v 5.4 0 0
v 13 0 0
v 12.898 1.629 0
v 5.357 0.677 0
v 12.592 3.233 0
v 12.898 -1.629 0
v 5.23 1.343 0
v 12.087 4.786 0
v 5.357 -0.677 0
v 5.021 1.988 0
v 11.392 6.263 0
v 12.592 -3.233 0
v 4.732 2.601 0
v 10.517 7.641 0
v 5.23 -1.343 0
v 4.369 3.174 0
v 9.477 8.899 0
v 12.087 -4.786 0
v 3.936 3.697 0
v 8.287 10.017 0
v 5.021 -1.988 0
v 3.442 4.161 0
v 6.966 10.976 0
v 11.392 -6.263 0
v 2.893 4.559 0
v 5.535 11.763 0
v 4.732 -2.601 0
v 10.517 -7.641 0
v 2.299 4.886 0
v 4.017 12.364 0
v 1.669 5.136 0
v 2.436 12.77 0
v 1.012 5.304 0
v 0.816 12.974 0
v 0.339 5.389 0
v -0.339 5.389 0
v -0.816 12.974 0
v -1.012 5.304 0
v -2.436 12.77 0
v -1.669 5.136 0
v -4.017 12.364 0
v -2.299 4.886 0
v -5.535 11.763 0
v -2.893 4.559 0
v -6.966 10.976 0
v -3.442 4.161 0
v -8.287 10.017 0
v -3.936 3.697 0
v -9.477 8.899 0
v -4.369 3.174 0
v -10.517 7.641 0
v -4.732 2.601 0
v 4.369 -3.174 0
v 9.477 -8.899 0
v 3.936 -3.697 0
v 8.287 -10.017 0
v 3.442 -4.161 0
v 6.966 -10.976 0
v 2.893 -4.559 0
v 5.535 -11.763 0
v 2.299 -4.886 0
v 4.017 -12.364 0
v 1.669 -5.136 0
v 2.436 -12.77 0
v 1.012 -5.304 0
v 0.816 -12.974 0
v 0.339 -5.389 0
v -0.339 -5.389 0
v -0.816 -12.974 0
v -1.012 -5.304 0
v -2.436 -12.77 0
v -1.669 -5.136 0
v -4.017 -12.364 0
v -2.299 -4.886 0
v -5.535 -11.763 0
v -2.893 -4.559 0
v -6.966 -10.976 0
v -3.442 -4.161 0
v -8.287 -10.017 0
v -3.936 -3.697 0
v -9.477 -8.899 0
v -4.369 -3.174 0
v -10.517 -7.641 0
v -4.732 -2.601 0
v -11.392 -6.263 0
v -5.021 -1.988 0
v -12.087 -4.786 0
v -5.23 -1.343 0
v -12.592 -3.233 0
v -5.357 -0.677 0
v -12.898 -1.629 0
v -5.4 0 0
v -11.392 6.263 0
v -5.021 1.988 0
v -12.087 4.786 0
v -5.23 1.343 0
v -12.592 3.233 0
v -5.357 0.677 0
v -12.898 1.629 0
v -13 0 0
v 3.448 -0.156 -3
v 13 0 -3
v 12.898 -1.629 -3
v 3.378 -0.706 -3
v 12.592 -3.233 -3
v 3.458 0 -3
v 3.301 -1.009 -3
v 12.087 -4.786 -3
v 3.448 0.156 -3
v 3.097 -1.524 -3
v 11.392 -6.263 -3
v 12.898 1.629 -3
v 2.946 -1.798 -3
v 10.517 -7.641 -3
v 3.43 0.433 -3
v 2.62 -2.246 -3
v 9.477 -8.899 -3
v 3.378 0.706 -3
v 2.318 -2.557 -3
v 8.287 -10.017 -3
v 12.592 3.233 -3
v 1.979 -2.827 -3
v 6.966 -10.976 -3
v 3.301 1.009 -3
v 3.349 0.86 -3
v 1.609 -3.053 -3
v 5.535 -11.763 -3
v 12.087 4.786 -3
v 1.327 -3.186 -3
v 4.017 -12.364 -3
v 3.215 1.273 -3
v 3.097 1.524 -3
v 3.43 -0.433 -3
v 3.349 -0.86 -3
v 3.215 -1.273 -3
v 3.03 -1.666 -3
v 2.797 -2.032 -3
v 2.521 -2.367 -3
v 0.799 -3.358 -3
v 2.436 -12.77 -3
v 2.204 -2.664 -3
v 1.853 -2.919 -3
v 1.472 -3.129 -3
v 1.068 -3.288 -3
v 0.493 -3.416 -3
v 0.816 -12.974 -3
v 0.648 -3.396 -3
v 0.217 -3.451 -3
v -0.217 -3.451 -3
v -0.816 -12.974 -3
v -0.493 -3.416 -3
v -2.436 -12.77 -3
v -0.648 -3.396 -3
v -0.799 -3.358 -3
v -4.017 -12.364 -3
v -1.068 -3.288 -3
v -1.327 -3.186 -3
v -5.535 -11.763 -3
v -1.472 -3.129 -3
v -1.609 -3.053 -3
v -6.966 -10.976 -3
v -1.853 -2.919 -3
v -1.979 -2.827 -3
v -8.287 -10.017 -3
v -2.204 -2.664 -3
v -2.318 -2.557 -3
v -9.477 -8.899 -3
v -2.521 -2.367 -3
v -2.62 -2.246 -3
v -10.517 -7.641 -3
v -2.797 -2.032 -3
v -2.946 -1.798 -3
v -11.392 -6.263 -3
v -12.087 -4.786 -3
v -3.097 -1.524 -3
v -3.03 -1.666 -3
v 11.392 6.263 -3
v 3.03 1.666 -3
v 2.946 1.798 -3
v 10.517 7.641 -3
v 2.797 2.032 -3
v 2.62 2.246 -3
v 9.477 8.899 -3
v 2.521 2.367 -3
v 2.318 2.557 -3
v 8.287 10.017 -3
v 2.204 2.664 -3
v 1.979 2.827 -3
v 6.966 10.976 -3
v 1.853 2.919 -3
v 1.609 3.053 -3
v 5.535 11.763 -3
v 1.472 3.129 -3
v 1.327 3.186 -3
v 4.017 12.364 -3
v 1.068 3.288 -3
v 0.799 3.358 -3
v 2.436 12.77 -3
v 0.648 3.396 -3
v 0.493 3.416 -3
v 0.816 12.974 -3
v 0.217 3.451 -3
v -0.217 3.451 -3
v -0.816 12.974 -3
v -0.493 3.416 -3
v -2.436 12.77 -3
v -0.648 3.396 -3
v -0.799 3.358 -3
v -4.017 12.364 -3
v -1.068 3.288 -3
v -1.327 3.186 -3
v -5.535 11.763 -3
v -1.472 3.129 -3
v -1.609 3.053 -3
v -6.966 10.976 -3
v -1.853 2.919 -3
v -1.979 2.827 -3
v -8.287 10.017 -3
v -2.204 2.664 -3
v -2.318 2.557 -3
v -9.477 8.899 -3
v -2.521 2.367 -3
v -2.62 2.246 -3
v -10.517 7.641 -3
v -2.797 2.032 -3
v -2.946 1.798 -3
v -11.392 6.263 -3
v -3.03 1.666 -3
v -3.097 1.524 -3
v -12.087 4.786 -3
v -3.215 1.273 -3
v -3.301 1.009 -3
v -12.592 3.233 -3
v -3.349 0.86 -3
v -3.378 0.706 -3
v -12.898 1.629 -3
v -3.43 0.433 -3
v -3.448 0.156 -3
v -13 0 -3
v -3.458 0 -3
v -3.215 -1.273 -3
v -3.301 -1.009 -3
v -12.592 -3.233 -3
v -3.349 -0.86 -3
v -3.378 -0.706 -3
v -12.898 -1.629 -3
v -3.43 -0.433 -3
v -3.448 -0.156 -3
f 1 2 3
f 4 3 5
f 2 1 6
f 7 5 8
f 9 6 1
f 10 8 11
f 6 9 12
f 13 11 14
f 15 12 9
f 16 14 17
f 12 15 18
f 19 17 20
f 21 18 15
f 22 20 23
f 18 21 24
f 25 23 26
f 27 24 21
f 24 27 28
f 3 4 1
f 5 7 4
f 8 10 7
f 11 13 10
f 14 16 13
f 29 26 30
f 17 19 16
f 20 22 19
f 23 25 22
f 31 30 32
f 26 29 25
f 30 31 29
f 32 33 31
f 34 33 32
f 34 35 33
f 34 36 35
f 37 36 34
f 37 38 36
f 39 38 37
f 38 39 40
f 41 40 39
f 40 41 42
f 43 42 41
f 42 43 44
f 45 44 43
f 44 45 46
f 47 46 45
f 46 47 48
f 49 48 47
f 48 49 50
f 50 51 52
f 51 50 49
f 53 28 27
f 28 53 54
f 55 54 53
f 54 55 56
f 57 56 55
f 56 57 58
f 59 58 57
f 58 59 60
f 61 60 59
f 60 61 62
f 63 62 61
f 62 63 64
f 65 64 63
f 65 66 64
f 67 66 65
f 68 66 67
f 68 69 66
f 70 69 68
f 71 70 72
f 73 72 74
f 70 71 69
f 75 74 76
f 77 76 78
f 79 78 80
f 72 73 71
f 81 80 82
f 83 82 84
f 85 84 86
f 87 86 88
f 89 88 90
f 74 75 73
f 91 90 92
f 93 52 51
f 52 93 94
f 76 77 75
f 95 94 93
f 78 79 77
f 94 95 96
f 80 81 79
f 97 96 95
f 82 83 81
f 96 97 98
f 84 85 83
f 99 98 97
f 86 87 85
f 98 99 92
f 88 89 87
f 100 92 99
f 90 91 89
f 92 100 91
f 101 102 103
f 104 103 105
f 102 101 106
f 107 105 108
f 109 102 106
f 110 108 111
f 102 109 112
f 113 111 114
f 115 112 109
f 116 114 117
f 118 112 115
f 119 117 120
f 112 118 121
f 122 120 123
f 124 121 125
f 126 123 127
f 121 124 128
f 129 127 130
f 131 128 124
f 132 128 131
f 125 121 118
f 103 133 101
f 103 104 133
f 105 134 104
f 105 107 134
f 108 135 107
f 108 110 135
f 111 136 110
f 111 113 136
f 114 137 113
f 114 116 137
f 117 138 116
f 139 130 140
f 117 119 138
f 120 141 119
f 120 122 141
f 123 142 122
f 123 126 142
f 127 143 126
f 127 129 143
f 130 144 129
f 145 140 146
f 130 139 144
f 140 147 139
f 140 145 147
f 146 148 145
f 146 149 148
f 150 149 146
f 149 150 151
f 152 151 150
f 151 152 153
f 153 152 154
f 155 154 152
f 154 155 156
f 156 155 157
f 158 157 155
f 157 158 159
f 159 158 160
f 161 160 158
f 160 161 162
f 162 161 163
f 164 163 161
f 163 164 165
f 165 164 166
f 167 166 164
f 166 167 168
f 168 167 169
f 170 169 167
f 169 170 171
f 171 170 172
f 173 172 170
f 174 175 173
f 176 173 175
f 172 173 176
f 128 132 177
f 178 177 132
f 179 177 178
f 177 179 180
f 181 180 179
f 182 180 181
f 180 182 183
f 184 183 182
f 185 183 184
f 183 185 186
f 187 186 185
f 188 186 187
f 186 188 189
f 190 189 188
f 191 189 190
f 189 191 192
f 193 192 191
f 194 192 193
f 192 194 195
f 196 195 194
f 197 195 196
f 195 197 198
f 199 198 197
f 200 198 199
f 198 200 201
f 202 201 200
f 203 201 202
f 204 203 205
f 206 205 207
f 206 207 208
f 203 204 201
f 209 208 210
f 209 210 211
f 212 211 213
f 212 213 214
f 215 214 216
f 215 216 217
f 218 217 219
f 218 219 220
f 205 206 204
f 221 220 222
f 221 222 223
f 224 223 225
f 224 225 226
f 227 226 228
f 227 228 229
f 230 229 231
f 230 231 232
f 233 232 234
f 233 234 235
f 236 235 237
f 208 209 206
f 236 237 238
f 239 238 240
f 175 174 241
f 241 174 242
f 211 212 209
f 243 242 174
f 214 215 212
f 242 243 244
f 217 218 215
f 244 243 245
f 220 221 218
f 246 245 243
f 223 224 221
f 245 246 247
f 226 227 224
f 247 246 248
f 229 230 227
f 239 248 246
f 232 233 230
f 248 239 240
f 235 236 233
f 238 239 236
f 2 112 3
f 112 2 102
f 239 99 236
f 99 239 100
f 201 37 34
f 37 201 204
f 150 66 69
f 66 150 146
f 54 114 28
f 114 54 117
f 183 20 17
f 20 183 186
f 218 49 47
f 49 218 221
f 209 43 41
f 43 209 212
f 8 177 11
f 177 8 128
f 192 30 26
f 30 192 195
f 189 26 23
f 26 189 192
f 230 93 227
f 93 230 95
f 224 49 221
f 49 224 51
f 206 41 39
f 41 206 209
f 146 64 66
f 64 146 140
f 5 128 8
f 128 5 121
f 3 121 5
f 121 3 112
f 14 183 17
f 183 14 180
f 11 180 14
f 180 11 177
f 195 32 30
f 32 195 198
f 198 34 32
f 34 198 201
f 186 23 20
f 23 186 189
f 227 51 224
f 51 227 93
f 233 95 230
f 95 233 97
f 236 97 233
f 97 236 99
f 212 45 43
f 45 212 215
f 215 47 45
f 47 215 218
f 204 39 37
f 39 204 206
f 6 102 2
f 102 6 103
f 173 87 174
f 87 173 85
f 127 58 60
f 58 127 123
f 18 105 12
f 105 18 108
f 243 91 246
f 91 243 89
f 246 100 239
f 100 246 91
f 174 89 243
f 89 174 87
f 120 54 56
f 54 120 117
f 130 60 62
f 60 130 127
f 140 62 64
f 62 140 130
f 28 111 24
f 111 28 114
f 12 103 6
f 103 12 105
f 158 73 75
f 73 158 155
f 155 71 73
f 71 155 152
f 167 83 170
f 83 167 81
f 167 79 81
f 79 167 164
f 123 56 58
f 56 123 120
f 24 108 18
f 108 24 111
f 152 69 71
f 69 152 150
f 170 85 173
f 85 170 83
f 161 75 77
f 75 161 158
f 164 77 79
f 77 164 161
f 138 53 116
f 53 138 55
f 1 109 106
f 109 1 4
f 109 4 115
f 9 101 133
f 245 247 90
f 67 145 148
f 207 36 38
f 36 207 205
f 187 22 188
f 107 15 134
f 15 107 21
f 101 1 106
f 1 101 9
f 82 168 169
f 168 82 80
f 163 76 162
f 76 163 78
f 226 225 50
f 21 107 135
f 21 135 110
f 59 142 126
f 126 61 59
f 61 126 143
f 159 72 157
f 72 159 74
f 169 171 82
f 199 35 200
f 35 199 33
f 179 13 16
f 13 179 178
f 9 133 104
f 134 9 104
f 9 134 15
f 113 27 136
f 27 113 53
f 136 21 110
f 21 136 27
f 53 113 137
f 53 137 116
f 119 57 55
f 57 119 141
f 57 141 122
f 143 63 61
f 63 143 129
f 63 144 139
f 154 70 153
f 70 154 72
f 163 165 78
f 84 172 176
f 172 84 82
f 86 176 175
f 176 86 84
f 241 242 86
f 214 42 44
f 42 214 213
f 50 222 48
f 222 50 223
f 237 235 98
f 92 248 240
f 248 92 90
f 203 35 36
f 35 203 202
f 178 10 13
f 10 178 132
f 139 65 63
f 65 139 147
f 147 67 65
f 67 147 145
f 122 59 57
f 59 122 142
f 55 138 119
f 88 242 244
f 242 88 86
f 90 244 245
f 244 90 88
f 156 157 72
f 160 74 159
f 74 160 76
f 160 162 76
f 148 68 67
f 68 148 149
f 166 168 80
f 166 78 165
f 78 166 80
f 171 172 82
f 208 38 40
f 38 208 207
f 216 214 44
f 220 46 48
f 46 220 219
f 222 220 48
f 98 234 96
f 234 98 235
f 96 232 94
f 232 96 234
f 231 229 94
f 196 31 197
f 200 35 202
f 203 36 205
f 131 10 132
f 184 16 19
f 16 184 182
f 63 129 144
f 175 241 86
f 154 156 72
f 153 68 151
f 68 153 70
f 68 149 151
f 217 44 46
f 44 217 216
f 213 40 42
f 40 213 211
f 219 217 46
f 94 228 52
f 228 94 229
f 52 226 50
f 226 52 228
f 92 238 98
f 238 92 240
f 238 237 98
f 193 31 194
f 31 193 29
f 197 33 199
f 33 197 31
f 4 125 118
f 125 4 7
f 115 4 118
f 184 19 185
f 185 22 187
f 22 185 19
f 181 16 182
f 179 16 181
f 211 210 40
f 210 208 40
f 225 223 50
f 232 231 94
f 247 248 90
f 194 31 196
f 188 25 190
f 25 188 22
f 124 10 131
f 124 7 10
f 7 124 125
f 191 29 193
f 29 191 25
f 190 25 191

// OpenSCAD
$fn = 50;


difference() {
	union() {
		translate(v = [0, 0, -3.0000000000]) {
			cylinder(h = 3, r = 10.0000000000);
		}
		translate(v = [0, 0, -3.0000000000]) {
			cylinder(h = 3, r = 13.0000000000);
		}
	}
	union() {
		translate(v = [0, 0, 0]) {
			rotate(a = [0, 0, 0]) {
				difference() {
					union() {
						#translate(v = [0, 0, -3.0000000000]) {
							cylinder(h = 3, r = 2.6000000000);
						}
						#translate(v = [0, 0, -3.9000000000]) {
							cylinder(h = 3.9000000000, r1 = 2.8750000000, r2 = 5.4000000000);
						}
						#translate(v = [0, 0, -3.0000000000]) {
							cylinder(h = 3, r = 2.8750000000);
						}
						#translate(v = [0, 0, -3.0000000000]) {
							cylinder(h = 3, r = 2.6000000000);
						}
					}
					union();
				}
			}
		}
	}
}
